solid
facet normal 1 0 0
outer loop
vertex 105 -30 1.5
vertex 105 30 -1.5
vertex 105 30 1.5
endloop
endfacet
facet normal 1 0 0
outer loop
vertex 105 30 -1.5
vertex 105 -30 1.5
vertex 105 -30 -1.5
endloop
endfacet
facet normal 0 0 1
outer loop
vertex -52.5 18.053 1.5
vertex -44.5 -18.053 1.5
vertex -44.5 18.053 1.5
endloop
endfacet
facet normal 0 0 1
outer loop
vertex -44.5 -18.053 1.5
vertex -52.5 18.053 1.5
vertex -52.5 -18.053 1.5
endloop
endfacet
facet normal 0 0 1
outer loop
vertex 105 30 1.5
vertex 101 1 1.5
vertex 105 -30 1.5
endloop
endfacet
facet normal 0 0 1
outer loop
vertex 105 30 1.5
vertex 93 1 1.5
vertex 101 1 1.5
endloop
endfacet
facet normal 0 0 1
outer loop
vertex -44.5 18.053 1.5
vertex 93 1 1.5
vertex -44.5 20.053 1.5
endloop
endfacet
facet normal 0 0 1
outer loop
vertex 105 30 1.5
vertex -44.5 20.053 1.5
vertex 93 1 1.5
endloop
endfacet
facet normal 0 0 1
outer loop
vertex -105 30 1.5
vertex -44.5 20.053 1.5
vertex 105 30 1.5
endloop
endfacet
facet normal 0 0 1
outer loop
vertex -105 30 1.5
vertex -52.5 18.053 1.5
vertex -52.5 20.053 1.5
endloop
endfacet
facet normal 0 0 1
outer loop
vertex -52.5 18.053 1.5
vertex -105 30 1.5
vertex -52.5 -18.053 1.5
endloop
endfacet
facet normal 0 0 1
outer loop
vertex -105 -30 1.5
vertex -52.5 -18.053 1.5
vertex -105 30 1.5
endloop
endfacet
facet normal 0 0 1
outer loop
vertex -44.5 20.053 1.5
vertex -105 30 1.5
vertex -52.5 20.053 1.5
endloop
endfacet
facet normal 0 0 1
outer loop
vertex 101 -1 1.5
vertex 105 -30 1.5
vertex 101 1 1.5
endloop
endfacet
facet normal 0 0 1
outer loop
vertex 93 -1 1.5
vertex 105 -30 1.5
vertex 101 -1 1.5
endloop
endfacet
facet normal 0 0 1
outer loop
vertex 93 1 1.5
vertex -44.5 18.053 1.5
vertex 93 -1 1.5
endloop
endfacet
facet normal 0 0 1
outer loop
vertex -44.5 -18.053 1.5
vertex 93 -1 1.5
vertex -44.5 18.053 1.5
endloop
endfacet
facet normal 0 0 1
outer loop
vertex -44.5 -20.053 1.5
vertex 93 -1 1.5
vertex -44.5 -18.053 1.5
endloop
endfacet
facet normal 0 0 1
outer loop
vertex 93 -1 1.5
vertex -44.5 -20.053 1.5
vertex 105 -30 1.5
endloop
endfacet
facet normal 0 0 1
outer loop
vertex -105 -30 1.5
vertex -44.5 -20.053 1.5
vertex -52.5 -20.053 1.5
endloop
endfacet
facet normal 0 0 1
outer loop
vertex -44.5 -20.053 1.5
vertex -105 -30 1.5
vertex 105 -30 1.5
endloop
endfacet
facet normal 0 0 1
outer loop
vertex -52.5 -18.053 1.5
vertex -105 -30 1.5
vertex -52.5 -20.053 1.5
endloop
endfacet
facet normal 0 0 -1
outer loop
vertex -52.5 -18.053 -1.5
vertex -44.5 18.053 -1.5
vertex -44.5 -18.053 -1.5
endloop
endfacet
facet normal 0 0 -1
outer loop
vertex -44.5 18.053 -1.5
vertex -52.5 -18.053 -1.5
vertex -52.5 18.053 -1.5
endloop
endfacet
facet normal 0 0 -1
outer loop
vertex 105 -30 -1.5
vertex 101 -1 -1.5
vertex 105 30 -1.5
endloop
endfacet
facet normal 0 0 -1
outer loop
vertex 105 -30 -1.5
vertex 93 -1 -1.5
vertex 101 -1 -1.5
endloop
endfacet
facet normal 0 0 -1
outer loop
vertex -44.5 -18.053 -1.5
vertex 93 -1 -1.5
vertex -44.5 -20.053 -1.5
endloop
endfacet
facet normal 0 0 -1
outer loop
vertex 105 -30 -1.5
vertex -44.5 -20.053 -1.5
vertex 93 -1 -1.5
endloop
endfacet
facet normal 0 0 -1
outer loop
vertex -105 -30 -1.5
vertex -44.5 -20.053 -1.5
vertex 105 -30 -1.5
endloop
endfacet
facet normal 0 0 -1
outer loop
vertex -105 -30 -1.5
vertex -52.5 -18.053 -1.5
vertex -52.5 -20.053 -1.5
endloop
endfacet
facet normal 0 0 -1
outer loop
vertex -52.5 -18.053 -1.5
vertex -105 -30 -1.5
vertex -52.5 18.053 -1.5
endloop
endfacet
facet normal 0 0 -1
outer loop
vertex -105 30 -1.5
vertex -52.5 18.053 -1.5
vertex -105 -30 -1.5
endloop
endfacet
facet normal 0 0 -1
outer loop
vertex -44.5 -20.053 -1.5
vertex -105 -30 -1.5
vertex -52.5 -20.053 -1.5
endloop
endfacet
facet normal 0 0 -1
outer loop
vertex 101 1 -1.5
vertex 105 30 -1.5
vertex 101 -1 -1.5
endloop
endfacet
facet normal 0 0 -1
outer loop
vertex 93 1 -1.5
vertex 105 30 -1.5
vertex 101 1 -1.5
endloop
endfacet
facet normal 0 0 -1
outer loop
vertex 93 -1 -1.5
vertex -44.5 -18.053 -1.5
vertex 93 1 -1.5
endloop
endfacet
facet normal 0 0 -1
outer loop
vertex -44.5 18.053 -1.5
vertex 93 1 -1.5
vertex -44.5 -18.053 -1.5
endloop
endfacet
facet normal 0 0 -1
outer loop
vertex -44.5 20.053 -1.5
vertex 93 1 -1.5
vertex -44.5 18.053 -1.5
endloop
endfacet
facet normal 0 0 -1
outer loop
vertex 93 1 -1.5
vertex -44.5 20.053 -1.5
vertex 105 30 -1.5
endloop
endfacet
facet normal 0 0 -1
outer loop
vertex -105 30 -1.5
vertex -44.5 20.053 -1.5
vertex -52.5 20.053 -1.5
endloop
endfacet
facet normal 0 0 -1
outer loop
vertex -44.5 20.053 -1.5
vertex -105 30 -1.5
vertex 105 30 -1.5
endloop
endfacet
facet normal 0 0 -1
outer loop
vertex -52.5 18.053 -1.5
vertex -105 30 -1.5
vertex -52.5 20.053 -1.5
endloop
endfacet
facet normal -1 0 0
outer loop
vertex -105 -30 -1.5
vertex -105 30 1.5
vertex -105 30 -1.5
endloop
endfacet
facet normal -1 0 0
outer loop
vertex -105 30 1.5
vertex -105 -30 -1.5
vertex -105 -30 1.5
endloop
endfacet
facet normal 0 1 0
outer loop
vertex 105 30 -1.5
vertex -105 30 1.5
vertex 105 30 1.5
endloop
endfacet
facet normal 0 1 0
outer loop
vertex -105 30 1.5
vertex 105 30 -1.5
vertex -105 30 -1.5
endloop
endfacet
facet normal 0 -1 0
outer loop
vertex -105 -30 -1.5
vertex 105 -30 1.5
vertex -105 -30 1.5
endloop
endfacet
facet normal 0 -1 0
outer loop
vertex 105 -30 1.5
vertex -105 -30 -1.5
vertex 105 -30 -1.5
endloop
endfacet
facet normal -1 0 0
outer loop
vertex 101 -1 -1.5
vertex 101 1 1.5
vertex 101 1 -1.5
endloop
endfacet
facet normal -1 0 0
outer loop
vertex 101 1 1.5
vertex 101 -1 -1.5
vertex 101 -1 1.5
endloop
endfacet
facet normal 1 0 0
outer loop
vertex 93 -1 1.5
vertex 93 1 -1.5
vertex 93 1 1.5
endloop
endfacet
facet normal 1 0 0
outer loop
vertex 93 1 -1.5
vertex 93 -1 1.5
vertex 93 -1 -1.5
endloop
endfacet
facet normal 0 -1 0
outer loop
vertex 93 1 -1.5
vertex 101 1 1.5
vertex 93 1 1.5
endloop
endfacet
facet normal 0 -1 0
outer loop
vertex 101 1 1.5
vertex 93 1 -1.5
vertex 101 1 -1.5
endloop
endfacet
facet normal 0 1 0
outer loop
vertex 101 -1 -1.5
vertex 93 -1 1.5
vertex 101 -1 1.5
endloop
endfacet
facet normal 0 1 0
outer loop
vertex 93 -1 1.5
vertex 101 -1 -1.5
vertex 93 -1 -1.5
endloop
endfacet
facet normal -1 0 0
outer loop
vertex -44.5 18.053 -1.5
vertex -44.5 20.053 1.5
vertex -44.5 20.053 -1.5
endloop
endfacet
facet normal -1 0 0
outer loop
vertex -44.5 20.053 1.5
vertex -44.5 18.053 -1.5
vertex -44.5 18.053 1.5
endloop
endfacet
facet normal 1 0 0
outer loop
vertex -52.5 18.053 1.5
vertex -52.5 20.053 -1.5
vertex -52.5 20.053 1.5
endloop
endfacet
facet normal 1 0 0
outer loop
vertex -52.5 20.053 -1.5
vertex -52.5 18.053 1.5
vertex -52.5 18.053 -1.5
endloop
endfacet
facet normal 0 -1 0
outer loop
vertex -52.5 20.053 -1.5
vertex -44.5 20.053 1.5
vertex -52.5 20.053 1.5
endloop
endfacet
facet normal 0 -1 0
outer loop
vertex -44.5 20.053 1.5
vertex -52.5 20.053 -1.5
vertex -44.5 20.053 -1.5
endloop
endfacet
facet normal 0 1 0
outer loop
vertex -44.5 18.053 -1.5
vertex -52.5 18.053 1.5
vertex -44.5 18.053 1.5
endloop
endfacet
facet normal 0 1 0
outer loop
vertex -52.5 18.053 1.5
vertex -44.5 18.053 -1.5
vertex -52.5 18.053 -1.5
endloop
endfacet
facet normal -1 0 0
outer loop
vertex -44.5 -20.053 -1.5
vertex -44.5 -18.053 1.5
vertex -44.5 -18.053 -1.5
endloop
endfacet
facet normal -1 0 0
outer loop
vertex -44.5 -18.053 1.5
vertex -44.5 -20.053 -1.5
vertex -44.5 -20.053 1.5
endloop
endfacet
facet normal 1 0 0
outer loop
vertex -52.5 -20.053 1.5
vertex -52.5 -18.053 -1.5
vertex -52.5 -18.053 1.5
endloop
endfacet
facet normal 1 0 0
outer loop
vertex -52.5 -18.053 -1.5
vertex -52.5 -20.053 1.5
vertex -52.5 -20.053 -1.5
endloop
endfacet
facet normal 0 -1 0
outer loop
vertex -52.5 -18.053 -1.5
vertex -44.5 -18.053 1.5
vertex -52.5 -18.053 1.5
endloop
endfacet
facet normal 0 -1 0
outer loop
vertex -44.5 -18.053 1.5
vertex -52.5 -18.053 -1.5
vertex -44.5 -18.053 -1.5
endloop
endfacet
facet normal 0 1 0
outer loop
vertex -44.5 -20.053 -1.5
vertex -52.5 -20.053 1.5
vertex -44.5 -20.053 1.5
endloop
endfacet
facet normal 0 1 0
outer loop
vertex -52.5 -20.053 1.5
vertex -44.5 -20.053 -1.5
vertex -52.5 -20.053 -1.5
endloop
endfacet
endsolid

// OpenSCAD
// ========================================
// a 210 x 60 x 3 mm plate with three 8 x 2 mm slots
// NeuroCAD canonical IR; dimensions are millimetres
// ========================================
$fn = 48;

difference() {
  cube(size=[210, 60, 3], center=true);
  translate([97, 0, 0]) {
    cube(size=[8, 2, 5], center=true);
  }
  translate([-48.5, 19.0525588832577, 0]) {
    cube(size=[8, 2, 5], center=true);
  }
  translate([-48.5, -19.0525588832576, 0]) {
    cube(size=[8, 2, 5], center=true);
  }
}
